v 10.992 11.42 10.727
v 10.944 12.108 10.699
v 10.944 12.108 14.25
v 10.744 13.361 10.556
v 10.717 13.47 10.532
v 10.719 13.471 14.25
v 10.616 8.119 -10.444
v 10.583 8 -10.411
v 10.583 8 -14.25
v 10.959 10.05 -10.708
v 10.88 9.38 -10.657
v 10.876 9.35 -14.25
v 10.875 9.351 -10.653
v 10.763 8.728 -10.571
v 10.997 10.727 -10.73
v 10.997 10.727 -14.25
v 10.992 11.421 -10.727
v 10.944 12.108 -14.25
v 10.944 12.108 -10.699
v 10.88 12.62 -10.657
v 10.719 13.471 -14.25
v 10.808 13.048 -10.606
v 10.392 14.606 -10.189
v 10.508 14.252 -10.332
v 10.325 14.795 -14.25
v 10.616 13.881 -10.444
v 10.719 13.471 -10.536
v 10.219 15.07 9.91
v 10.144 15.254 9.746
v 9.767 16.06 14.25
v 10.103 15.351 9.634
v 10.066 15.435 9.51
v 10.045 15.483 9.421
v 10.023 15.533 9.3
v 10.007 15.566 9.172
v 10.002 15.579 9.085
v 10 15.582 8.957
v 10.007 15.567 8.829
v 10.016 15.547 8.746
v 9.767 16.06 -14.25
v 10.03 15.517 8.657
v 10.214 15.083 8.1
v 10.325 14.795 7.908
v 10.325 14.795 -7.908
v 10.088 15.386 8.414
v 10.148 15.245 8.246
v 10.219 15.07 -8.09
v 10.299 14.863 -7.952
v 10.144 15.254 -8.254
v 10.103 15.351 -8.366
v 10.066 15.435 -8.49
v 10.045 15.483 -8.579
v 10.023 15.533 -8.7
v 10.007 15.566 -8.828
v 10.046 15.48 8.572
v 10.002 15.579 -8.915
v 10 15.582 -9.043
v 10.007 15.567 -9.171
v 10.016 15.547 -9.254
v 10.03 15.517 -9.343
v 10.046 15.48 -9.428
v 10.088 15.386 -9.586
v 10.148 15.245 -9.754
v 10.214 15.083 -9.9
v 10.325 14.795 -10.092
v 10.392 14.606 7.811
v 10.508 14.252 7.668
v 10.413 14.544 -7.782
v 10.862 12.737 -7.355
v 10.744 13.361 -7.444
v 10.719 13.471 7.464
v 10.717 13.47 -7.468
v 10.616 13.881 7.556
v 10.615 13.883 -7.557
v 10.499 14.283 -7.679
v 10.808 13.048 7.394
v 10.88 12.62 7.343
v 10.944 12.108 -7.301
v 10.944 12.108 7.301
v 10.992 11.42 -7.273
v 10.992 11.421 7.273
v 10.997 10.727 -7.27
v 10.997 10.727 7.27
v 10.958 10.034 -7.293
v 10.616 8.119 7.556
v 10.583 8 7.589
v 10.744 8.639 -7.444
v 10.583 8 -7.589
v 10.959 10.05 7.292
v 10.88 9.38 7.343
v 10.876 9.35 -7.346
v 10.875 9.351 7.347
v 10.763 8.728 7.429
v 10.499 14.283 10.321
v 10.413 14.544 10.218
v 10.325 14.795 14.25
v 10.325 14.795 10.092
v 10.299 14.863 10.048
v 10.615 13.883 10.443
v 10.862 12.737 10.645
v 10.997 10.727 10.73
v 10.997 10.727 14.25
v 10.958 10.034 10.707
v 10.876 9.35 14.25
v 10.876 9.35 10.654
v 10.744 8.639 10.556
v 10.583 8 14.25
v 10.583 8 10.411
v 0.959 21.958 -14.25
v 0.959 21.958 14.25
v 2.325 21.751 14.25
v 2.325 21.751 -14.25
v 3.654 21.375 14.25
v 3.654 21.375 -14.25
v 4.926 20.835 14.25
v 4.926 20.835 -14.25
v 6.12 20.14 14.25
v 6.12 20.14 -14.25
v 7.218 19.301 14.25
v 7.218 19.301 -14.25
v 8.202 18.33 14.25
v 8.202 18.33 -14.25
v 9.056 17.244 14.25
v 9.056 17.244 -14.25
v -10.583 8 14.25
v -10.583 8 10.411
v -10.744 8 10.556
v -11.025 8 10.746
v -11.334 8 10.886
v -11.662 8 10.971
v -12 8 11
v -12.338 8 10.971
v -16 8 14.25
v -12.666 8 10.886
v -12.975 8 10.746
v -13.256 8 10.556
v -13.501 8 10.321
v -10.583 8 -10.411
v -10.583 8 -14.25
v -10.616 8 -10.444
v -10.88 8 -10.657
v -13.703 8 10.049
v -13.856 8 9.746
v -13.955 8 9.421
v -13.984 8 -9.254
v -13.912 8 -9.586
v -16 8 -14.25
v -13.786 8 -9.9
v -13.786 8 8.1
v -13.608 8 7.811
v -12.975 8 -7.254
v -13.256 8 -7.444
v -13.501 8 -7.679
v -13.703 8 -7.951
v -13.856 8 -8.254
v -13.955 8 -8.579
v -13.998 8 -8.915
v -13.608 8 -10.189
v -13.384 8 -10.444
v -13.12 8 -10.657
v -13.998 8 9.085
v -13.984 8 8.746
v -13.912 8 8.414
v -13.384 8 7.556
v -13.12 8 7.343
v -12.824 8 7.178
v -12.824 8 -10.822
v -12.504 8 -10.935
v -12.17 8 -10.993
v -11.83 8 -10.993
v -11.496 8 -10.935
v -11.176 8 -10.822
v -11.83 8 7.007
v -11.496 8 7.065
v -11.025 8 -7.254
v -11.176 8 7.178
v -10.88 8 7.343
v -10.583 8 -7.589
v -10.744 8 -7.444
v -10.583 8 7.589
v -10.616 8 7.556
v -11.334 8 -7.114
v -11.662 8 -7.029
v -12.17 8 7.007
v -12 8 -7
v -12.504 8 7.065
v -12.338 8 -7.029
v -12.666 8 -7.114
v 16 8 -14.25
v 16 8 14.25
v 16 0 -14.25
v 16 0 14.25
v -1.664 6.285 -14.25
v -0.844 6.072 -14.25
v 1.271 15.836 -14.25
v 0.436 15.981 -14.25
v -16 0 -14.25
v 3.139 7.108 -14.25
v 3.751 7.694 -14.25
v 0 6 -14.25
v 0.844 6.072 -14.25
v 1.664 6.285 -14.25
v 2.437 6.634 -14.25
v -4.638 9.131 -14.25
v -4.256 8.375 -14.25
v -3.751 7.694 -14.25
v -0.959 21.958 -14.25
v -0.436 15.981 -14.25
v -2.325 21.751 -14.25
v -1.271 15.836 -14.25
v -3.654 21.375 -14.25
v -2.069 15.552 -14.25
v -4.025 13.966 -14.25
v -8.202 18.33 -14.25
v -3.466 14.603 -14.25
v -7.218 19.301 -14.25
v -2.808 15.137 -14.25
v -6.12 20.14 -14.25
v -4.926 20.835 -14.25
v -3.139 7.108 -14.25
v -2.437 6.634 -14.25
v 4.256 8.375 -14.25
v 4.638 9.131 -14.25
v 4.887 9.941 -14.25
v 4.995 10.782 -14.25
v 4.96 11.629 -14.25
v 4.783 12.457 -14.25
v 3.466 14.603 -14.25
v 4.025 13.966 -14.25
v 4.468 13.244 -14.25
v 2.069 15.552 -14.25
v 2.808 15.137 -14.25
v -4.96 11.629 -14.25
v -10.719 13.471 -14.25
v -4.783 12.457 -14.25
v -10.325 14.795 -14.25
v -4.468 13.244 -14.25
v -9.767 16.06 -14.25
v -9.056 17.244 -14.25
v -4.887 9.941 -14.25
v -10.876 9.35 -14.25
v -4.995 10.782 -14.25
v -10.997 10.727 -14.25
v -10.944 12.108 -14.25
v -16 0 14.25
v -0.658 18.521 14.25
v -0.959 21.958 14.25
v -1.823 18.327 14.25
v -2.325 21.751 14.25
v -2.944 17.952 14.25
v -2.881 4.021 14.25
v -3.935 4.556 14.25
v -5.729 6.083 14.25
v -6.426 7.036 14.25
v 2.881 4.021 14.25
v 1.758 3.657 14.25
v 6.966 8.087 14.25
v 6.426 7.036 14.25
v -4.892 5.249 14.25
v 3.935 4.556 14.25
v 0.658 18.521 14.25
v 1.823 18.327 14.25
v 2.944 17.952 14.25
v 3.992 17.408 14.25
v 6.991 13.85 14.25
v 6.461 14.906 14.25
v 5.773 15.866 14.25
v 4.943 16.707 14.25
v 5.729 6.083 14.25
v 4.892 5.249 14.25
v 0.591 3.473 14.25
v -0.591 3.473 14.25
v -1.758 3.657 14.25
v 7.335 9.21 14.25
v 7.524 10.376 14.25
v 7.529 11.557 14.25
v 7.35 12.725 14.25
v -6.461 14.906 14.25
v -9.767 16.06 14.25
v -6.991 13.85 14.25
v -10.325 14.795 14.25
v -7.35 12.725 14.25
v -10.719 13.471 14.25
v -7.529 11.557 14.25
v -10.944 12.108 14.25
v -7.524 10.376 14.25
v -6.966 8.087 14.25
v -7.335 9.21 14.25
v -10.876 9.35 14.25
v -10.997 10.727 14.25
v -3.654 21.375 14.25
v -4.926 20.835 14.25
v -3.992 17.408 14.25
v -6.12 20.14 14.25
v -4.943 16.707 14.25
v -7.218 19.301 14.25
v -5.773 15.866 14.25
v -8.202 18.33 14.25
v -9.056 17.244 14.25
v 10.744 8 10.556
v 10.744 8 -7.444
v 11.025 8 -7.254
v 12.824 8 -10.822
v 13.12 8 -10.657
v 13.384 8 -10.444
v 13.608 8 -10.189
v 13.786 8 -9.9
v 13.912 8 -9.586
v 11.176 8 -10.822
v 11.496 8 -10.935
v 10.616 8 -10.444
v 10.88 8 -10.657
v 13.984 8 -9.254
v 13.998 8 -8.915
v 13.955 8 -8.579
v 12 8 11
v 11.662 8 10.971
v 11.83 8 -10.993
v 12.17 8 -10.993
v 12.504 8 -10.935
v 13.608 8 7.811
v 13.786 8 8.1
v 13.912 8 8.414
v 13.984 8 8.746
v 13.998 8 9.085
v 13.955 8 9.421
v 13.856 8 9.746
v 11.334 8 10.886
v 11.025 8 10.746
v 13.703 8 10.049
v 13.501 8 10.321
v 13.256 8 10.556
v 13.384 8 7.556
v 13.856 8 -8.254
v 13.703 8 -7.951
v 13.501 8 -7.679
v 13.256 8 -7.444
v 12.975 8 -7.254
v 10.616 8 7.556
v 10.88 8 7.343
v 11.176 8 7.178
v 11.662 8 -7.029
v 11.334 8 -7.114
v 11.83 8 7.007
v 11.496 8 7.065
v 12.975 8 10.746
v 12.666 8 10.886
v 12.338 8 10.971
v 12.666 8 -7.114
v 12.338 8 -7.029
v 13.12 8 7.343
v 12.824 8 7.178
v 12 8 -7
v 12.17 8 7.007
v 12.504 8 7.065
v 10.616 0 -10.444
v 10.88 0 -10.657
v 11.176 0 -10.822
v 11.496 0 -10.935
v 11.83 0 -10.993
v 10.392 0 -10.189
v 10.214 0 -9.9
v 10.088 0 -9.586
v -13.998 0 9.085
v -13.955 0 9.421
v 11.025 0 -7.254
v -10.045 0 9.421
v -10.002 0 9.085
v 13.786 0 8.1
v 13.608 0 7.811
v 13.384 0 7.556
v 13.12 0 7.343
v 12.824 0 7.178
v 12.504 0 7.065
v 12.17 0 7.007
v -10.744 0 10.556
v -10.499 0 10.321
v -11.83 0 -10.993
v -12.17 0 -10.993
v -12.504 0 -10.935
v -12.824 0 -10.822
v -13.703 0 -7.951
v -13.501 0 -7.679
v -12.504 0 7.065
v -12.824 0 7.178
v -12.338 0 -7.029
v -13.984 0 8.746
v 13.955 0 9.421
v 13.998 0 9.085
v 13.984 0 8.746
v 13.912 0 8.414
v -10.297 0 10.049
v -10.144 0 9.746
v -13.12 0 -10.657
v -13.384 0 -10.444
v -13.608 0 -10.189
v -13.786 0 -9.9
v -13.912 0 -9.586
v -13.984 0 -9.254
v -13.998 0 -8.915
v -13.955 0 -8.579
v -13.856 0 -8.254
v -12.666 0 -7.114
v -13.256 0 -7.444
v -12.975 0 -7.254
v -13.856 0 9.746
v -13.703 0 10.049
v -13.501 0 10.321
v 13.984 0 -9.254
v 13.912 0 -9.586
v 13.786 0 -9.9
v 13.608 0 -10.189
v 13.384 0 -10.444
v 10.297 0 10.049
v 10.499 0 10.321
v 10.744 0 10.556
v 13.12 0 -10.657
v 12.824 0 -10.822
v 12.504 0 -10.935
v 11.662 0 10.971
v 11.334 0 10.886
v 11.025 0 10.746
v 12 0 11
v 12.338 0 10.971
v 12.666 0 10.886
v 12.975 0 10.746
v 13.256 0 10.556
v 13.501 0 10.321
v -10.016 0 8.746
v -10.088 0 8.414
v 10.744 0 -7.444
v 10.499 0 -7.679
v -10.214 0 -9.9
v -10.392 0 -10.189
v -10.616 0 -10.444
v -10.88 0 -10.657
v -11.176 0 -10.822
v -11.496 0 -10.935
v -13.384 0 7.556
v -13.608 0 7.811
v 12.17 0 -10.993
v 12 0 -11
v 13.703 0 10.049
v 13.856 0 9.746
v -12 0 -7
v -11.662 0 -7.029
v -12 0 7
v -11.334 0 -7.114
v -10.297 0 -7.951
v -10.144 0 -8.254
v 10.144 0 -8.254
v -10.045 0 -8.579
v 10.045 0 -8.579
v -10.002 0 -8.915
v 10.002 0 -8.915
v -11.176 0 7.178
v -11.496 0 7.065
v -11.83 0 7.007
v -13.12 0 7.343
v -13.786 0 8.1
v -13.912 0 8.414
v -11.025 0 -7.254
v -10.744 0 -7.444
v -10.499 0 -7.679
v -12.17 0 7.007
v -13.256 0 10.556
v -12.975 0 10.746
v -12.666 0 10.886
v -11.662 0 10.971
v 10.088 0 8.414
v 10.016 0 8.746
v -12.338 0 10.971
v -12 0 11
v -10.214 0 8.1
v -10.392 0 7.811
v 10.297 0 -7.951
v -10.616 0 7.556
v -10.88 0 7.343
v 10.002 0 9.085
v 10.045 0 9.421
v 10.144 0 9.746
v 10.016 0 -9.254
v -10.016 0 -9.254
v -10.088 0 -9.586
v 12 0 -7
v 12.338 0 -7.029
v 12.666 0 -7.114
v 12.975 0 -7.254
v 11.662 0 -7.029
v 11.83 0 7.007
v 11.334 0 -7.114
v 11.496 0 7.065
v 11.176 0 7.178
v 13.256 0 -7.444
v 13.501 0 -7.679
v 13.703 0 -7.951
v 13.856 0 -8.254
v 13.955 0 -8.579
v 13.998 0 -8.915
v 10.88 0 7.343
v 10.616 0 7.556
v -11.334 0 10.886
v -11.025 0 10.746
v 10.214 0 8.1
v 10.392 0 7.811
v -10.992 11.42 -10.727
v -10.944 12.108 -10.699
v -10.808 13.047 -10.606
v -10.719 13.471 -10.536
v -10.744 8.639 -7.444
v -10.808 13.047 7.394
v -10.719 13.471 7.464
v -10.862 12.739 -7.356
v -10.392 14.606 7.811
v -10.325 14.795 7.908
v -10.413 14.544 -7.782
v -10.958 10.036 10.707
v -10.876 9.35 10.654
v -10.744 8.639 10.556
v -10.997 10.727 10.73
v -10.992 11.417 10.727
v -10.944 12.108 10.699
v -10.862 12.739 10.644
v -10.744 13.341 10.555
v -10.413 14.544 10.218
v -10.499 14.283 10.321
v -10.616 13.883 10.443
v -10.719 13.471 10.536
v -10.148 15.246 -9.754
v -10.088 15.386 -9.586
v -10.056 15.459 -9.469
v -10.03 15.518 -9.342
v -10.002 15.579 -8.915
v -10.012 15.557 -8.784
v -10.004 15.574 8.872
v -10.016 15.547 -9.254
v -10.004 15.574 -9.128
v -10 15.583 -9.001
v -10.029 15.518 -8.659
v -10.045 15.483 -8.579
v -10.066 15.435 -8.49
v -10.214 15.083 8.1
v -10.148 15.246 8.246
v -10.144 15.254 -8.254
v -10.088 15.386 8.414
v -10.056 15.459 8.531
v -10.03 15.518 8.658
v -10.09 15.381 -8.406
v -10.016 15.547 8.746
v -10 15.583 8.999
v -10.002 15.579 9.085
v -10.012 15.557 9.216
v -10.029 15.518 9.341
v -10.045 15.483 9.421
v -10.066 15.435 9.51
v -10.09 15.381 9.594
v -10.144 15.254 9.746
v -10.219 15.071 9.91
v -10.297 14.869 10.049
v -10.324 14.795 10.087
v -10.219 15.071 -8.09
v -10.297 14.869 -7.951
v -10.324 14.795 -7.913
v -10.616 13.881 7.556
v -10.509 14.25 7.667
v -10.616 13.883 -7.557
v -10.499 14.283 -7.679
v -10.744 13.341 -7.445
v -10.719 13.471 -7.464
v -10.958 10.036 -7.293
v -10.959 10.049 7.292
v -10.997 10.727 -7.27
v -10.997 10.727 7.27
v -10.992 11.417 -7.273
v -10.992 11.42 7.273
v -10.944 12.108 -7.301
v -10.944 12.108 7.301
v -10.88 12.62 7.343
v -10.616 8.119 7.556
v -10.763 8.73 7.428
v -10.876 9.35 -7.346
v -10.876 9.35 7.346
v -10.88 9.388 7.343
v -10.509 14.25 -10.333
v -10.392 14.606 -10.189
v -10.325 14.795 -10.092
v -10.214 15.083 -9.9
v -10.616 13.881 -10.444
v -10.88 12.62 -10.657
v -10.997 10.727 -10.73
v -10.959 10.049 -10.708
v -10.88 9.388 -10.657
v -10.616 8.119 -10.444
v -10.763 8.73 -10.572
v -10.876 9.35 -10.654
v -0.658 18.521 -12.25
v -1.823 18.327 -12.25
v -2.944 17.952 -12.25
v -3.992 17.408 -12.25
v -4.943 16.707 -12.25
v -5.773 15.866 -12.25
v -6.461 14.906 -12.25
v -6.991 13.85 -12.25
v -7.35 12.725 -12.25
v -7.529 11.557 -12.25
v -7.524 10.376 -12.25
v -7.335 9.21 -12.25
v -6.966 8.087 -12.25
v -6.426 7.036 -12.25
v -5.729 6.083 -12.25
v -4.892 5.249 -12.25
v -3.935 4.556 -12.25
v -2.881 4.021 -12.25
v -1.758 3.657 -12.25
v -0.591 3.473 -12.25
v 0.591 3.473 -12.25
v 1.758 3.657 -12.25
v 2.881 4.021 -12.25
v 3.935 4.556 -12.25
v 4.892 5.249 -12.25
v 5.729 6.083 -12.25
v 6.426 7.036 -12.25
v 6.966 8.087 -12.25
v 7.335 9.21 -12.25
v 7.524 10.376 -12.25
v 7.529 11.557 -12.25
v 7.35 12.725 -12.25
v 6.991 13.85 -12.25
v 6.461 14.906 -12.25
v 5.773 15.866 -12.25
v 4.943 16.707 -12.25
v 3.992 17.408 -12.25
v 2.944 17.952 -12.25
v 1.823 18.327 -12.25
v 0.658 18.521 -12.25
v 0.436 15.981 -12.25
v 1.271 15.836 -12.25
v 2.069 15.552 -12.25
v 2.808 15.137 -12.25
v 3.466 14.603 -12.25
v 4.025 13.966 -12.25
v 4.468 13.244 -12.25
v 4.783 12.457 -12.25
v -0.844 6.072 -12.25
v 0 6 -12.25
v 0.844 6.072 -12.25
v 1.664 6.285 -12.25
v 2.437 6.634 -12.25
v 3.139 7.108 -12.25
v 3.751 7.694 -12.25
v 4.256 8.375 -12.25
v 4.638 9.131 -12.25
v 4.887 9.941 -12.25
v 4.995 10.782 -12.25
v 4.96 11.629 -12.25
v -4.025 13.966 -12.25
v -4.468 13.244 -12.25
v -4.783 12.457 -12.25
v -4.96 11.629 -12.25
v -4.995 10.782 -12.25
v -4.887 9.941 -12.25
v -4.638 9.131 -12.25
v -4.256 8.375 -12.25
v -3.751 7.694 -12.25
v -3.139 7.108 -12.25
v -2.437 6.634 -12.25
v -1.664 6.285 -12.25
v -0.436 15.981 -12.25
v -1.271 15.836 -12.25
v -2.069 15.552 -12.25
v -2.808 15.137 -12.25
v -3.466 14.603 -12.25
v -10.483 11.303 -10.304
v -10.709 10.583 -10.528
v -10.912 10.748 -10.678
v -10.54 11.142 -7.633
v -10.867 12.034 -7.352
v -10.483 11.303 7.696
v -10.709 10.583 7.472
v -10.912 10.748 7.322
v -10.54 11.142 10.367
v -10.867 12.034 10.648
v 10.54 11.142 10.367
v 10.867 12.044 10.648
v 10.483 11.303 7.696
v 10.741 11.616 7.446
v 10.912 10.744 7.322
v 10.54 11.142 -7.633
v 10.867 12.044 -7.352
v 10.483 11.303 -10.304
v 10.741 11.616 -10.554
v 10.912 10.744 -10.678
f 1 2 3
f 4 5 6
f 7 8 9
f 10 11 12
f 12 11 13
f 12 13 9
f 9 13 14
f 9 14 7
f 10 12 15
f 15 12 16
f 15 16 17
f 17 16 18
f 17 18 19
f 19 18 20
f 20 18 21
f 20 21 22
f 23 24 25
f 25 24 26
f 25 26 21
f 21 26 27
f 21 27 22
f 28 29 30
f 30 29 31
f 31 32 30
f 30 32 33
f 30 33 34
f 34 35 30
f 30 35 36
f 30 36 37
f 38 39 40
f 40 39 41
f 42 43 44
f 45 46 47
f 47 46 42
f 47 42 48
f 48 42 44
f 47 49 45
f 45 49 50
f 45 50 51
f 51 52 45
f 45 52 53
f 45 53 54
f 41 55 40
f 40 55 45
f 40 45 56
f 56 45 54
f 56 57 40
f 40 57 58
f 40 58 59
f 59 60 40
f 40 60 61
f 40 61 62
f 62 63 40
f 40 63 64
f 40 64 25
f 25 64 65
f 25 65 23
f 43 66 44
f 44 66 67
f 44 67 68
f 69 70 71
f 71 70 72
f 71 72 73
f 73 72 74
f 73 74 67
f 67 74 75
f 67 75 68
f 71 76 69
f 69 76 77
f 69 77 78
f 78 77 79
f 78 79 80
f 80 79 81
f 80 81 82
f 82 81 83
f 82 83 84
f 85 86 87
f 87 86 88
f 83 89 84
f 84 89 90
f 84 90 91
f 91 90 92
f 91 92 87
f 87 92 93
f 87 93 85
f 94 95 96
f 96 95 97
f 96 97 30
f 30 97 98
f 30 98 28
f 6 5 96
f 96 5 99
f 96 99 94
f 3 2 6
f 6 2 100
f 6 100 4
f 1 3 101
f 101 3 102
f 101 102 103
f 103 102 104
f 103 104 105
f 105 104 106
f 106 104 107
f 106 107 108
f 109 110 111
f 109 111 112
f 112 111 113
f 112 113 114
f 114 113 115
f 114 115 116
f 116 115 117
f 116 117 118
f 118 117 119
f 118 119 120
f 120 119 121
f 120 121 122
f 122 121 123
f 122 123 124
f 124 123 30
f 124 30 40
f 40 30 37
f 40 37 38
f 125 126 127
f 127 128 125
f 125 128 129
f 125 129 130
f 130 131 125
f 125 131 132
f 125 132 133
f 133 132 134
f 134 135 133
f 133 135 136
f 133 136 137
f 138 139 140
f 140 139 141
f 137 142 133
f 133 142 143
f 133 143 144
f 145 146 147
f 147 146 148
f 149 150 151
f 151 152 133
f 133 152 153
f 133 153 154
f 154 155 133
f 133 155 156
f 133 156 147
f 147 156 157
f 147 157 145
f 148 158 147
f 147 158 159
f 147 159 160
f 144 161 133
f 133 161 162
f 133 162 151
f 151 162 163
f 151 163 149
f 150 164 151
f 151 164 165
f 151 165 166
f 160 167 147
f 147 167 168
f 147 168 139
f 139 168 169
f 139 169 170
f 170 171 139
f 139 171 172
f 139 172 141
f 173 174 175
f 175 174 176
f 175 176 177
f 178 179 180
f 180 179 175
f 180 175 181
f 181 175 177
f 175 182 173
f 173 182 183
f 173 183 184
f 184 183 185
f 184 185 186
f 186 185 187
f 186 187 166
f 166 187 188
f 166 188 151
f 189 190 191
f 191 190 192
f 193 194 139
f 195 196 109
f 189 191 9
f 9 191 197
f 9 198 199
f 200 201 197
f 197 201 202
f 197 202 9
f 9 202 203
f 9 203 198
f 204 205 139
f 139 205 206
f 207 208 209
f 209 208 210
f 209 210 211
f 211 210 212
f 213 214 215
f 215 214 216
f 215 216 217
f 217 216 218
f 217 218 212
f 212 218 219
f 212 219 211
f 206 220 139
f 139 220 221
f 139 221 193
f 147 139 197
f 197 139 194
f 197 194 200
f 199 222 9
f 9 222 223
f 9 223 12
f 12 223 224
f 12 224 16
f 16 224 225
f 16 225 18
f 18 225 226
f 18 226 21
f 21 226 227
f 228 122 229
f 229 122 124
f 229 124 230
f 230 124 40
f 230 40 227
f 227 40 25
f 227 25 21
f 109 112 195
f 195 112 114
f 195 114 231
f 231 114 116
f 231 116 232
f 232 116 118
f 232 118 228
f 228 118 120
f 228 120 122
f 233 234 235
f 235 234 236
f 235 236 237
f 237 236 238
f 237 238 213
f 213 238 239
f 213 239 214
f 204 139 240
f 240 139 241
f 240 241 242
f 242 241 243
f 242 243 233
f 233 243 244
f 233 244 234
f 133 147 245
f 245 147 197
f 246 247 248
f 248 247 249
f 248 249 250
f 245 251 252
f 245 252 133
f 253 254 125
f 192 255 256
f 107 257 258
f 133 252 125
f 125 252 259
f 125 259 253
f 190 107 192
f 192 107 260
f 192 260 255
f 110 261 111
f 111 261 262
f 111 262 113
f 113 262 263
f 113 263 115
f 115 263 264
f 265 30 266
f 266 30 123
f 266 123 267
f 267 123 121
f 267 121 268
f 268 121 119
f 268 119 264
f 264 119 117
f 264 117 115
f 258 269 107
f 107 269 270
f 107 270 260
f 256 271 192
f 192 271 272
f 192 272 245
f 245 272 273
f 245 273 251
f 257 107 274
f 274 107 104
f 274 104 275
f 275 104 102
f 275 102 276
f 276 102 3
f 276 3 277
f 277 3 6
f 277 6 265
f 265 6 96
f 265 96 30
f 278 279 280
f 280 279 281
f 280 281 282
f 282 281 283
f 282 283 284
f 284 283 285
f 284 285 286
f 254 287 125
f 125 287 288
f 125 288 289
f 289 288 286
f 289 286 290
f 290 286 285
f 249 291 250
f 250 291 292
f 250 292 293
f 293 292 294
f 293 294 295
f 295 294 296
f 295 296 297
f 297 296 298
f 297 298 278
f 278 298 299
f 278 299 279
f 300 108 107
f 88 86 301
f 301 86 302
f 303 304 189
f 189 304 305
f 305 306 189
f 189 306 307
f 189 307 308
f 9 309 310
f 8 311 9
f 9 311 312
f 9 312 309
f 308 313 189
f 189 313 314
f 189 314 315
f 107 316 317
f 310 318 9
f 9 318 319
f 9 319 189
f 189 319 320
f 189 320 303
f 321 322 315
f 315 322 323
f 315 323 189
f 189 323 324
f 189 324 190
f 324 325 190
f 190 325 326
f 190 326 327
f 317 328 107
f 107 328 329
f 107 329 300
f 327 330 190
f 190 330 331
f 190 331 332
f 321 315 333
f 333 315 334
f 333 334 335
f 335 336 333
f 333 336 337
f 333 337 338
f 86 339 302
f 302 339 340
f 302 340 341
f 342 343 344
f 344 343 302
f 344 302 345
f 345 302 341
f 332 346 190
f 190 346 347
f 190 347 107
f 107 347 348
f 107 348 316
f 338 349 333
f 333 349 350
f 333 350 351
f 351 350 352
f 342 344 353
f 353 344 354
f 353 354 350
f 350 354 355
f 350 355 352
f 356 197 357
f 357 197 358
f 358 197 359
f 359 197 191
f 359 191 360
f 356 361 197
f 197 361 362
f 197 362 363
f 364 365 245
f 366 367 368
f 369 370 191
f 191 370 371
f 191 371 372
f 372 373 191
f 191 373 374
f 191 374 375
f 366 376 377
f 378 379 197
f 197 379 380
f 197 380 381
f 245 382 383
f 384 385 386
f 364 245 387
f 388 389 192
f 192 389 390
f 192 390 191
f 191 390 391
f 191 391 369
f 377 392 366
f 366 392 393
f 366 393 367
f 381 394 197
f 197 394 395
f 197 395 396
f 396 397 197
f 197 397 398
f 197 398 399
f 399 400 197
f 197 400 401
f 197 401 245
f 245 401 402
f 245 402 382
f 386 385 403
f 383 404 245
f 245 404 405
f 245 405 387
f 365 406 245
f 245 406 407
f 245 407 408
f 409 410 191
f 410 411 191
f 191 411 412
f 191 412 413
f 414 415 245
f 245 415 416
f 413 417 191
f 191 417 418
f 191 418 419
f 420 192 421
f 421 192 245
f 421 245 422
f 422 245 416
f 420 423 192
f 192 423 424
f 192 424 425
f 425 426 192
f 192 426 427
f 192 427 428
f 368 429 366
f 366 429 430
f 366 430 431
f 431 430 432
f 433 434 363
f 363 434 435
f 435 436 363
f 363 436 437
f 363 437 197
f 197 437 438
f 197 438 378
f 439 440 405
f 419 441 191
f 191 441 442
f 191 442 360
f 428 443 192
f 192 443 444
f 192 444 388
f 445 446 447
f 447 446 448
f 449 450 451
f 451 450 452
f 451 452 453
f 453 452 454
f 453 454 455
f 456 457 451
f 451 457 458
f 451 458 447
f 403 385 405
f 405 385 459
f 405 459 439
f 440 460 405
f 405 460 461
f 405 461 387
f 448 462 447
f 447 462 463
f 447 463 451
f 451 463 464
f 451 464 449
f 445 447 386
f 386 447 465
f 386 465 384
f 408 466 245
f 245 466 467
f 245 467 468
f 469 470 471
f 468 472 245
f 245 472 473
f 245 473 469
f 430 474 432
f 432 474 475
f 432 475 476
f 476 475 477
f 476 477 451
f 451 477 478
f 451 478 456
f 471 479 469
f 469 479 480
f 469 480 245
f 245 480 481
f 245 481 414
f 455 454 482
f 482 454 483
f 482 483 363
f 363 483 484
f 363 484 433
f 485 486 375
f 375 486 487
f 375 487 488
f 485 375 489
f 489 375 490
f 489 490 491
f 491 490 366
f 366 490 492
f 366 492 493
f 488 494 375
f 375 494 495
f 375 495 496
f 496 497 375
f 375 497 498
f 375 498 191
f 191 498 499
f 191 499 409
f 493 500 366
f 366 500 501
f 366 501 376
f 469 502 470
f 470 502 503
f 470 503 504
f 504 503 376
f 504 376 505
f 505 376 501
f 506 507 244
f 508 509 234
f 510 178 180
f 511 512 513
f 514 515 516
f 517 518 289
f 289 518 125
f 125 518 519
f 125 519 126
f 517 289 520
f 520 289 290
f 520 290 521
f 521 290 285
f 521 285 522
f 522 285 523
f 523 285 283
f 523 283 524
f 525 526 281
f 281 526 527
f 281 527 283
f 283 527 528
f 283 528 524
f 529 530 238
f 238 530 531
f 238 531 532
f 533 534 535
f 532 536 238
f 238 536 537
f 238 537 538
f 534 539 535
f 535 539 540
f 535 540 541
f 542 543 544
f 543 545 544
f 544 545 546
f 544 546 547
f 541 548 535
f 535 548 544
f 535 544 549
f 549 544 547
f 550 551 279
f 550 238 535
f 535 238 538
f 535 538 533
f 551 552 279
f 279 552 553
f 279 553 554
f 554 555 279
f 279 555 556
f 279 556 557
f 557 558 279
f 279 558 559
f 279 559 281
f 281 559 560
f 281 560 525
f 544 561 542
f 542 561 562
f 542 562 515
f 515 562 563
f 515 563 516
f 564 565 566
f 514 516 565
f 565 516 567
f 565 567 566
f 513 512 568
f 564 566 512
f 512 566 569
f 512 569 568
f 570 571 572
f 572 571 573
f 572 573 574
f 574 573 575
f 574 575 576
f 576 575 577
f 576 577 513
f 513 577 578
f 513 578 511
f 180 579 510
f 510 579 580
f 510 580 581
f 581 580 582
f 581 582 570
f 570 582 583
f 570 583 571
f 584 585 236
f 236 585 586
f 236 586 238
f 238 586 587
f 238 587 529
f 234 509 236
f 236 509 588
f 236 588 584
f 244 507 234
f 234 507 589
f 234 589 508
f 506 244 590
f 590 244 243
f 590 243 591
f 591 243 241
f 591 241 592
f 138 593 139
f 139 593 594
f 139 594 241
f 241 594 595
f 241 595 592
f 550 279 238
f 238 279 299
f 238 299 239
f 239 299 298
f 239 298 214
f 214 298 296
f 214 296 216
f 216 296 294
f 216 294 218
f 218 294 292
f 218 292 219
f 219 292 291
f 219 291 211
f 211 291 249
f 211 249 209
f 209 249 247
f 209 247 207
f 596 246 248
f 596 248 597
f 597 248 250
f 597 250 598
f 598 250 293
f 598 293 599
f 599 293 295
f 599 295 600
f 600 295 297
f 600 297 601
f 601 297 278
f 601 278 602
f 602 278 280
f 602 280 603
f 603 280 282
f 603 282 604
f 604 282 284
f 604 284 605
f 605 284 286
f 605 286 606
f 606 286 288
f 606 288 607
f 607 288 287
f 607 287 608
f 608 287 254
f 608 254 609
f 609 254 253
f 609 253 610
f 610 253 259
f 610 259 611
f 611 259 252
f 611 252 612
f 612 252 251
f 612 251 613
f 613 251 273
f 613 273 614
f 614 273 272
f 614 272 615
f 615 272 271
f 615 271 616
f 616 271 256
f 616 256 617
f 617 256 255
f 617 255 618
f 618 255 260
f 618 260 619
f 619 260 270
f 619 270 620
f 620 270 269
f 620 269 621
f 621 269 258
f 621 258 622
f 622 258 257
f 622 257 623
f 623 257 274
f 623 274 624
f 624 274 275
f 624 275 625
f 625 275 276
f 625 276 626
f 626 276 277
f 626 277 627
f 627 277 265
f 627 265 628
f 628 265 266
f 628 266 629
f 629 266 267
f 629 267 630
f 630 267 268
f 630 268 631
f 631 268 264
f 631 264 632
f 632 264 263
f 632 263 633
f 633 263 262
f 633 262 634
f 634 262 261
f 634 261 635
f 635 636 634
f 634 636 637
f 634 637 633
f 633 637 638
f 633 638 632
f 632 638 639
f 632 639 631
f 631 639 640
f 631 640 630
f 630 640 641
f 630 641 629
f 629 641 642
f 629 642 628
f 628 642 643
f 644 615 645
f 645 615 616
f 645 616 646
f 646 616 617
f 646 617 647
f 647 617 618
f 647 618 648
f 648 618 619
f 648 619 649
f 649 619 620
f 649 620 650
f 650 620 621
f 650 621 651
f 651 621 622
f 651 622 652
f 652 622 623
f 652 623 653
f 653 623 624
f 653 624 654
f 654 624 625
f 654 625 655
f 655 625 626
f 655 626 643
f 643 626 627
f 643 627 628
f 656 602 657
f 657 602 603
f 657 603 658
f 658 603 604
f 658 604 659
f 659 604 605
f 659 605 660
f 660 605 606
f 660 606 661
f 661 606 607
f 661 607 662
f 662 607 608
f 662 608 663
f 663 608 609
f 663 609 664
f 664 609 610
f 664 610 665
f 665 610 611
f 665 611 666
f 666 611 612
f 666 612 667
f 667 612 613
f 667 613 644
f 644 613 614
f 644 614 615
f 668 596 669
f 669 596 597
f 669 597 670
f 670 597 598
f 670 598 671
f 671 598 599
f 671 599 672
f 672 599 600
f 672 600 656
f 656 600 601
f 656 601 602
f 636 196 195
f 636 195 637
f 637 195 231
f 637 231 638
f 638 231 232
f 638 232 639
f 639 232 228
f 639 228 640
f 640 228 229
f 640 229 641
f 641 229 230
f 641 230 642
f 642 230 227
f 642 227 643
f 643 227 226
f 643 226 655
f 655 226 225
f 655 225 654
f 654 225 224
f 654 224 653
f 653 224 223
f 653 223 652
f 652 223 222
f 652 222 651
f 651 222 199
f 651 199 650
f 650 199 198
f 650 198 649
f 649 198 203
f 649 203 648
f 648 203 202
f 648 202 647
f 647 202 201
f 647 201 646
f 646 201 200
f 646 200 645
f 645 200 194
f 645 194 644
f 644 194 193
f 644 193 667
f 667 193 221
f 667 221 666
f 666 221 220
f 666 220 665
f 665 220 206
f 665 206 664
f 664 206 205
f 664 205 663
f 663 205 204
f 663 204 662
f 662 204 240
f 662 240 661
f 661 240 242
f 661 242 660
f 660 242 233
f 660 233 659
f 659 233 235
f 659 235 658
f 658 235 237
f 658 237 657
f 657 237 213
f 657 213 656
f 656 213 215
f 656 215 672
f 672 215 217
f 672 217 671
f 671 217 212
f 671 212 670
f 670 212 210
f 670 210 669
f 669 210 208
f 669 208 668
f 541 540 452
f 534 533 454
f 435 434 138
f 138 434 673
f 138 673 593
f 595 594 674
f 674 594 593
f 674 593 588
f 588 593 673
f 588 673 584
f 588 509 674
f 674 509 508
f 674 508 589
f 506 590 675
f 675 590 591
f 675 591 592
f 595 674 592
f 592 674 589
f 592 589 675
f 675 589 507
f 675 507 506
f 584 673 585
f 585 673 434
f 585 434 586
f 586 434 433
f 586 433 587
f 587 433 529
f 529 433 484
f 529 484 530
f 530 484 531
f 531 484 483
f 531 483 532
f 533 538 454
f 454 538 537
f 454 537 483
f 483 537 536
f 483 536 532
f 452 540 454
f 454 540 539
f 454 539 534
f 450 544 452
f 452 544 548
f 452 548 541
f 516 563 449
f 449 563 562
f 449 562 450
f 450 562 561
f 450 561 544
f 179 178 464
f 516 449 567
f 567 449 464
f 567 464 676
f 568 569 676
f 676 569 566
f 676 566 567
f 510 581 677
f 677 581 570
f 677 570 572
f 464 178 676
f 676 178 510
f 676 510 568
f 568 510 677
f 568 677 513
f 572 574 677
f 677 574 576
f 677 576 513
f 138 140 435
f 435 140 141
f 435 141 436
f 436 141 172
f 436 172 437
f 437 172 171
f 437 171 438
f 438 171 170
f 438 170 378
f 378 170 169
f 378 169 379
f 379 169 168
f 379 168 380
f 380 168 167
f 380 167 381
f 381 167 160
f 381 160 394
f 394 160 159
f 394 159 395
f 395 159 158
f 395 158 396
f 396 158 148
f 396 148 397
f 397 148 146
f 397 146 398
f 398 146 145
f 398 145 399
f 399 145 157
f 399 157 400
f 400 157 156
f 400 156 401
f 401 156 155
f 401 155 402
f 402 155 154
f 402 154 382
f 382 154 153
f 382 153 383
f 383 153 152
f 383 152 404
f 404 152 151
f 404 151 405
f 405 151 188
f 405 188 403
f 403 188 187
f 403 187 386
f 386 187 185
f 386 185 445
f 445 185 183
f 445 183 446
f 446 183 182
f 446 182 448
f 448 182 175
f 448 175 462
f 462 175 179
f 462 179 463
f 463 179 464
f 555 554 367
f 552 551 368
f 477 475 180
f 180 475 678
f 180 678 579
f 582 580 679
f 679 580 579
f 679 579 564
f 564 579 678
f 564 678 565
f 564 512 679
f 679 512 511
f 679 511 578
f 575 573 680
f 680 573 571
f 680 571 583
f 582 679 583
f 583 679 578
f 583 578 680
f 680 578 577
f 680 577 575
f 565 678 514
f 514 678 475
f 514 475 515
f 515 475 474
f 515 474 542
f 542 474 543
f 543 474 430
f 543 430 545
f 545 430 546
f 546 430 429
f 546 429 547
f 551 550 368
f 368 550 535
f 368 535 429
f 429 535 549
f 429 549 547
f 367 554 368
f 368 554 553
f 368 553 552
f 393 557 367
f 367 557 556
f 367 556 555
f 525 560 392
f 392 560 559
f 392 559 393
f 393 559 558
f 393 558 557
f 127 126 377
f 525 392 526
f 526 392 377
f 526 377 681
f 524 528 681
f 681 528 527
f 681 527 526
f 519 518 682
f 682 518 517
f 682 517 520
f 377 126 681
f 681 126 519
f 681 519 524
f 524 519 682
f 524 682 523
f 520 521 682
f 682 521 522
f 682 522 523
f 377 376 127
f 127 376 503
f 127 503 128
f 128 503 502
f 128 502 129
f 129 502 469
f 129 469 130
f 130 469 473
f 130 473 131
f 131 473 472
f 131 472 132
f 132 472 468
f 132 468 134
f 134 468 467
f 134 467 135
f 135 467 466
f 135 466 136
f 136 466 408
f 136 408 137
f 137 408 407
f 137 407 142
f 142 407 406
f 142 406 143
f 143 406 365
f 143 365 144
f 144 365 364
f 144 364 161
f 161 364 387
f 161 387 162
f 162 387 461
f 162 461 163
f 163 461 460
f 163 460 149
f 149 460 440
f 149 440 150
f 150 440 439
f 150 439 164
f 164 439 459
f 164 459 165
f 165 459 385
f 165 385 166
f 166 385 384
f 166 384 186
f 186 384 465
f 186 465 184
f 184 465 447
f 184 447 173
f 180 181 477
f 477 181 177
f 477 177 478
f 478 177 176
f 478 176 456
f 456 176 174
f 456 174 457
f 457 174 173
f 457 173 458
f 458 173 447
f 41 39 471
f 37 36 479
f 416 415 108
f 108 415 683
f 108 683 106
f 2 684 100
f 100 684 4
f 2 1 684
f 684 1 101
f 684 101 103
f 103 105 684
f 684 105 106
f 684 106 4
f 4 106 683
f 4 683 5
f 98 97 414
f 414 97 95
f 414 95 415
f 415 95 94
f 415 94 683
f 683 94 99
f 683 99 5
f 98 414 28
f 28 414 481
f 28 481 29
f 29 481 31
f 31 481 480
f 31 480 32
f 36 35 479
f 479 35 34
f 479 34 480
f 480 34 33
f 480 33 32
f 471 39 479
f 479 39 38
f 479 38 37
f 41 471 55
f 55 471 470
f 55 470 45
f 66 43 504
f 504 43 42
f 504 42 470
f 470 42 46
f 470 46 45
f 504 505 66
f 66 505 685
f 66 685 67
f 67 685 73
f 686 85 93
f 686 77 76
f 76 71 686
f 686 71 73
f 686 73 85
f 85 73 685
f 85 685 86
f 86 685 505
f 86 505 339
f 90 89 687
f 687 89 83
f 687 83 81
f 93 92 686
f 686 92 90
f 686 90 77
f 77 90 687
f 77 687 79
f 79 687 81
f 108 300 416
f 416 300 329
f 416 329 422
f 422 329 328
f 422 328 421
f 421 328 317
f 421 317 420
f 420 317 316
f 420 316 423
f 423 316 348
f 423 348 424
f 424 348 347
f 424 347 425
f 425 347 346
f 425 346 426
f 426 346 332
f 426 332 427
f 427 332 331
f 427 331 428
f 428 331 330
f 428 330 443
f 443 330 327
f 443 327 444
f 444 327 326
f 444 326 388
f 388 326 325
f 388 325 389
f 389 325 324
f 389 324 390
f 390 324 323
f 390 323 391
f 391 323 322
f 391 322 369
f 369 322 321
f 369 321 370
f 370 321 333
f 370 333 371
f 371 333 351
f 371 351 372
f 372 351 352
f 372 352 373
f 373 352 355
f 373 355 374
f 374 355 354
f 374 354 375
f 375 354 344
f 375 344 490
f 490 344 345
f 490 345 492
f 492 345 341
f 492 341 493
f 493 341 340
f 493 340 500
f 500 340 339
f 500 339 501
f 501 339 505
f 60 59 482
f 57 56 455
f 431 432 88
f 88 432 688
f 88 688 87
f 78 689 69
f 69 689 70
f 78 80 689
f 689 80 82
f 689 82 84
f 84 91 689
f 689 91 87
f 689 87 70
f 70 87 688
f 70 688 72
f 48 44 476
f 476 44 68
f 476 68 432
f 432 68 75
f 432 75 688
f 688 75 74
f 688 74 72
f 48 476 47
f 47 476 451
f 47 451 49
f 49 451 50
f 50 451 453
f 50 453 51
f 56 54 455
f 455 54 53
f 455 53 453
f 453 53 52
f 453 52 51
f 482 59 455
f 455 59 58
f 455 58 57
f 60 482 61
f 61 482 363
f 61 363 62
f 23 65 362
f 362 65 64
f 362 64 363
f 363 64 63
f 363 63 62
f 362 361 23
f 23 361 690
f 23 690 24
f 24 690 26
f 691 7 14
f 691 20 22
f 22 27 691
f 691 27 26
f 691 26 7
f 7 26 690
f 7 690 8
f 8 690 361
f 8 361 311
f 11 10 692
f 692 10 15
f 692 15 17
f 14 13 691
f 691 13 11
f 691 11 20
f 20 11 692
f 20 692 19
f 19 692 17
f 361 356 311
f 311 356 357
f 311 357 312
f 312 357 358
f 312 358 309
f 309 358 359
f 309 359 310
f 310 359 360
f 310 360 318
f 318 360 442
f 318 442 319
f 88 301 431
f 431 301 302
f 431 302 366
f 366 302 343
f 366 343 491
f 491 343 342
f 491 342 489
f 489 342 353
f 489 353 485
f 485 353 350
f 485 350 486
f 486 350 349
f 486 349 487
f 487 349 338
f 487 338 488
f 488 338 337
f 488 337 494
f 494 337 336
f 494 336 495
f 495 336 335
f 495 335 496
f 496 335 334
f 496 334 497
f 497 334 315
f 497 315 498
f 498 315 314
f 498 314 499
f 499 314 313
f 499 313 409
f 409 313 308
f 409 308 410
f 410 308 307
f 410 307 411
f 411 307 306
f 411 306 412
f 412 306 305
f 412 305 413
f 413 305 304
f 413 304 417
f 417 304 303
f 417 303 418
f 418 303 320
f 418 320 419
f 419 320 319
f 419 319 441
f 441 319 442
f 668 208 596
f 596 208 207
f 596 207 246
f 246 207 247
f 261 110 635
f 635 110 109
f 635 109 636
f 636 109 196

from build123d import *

# Parameters (mm, degrees)
SKETCH1_W               = 32
SKETCH1_H               = 28.5
BOSS_EXTRUDE1_DEPTH     = 8
SKETCH3_R               = 11
BOSS_EXTRUDE2_DEPTH     = 28.5
SKETCH4_R               = 7.55
CUT_EXTRUDE2_DEPTH      = 26.5
SKETCH5_R               = 5
CUT_EXTRUDE3_DEPTH      = 40.398604036
SKETCH2_R               = 2
CUT_EXTRUDE1_DEPTH      = 26.594188794
CUT_EXTRUDE1_DEPTH_BACK = 26.594188794
CUT_EXTRUDE5_DEPTH      = 40.398604164


with BuildPart() as part:
    # Sketch1 → Boss-Extrude1 (new body)
    with BuildSketch(Plane(origin=(0, 0, 0), x_dir=(1, 0, 0), z_dir=(0, 1, 0))):
        Rectangle(SKETCH1_W, SKETCH1_H)
    extrude(amount=BOSS_EXTRUDE1_DEPTH)

    # Sketch3 → Boss-Extrude2 (add, through all)
    with BuildSketch(Plane.XY.offset(14.25)):
        with Locations((0, 11)):
            Circle(SKETCH3_R)
    extrude(amount=-BOSS_EXTRUDE2_DEPTH)

    # Sketch4 → Cut-Extrude2 (cut)
    with BuildSketch(Plane.XY.offset(14.25)):
        with Locations((0, 11)):
            Circle(SKETCH4_R)
    extrude(amount=-CUT_EXTRUDE2_DEPTH, mode=Mode.SUBTRACT)

    # Sketch5 → Cut-Extrude3 (cut, through all)
    with BuildSketch(Plane(origin=(0, 0, -14.25), x_dir=(-1, 0, 0), z_dir=(0, 0, -1))):
        with Locations((0, 11)):
            Circle(SKETCH5_R)
    extrude(amount=-CUT_EXTRUDE3_DEPTH, mode=Mode.SUBTRACT)

    # Sketch2 → Cut-Extrude1 (cut, two sides)
    with BuildSketch(Plane(origin=(0, 8, 0), x_dir=(1, 0, 0), z_dir=(0, 1, 0))) as cut_extrude1_sk:
        with Locations(Location((-12, 9, 0), (0, 0, 270))):
            Circle(SKETCH2_R)
        with Locations(Location((-12, -9, 0), (0, 0, 315.112762264))):
            Circle(SKETCH2_R)
        with Locations(Location((12, -9, 0), (0, 0, 270))):
            Circle(SKETCH2_R)
        with Locations(Location((12, 9, 0), (0, 0, 224.887210993))):
            Circle(SKETCH2_R)
    extrude(amount=CUT_EXTRUDE1_DEPTH, mode=Mode.SUBTRACT)
    extrude(cut_extrude1_sk.sketch, amount=-CUT_EXTRUDE1_DEPTH_BACK, mode=Mode.SUBTRACT)

    # Sketch7 → Cut-Extrude5 (cut, through all)
    with BuildSketch(Plane.XY.offset(14.25)):
        with BuildLine():
            Line((-0.435778714, 15.98097349), (-0.95871317, 21.958141679))
            ThreePointArc((-0.95871317, 21.958141679), (0, 22), (0.95871317, 21.958141679))
            Line((0.95871317, 21.958141679), (0.435778714, 15.98097349))
            ThreePointArc((0.435778714, 15.98097349), (0, 16), (-0.435778714, 15.98097349))
        make_face()
    extrude(amount=-CUT_EXTRUDE5_DEPTH, mode=Mode.SUBTRACT)


solid = part.part
